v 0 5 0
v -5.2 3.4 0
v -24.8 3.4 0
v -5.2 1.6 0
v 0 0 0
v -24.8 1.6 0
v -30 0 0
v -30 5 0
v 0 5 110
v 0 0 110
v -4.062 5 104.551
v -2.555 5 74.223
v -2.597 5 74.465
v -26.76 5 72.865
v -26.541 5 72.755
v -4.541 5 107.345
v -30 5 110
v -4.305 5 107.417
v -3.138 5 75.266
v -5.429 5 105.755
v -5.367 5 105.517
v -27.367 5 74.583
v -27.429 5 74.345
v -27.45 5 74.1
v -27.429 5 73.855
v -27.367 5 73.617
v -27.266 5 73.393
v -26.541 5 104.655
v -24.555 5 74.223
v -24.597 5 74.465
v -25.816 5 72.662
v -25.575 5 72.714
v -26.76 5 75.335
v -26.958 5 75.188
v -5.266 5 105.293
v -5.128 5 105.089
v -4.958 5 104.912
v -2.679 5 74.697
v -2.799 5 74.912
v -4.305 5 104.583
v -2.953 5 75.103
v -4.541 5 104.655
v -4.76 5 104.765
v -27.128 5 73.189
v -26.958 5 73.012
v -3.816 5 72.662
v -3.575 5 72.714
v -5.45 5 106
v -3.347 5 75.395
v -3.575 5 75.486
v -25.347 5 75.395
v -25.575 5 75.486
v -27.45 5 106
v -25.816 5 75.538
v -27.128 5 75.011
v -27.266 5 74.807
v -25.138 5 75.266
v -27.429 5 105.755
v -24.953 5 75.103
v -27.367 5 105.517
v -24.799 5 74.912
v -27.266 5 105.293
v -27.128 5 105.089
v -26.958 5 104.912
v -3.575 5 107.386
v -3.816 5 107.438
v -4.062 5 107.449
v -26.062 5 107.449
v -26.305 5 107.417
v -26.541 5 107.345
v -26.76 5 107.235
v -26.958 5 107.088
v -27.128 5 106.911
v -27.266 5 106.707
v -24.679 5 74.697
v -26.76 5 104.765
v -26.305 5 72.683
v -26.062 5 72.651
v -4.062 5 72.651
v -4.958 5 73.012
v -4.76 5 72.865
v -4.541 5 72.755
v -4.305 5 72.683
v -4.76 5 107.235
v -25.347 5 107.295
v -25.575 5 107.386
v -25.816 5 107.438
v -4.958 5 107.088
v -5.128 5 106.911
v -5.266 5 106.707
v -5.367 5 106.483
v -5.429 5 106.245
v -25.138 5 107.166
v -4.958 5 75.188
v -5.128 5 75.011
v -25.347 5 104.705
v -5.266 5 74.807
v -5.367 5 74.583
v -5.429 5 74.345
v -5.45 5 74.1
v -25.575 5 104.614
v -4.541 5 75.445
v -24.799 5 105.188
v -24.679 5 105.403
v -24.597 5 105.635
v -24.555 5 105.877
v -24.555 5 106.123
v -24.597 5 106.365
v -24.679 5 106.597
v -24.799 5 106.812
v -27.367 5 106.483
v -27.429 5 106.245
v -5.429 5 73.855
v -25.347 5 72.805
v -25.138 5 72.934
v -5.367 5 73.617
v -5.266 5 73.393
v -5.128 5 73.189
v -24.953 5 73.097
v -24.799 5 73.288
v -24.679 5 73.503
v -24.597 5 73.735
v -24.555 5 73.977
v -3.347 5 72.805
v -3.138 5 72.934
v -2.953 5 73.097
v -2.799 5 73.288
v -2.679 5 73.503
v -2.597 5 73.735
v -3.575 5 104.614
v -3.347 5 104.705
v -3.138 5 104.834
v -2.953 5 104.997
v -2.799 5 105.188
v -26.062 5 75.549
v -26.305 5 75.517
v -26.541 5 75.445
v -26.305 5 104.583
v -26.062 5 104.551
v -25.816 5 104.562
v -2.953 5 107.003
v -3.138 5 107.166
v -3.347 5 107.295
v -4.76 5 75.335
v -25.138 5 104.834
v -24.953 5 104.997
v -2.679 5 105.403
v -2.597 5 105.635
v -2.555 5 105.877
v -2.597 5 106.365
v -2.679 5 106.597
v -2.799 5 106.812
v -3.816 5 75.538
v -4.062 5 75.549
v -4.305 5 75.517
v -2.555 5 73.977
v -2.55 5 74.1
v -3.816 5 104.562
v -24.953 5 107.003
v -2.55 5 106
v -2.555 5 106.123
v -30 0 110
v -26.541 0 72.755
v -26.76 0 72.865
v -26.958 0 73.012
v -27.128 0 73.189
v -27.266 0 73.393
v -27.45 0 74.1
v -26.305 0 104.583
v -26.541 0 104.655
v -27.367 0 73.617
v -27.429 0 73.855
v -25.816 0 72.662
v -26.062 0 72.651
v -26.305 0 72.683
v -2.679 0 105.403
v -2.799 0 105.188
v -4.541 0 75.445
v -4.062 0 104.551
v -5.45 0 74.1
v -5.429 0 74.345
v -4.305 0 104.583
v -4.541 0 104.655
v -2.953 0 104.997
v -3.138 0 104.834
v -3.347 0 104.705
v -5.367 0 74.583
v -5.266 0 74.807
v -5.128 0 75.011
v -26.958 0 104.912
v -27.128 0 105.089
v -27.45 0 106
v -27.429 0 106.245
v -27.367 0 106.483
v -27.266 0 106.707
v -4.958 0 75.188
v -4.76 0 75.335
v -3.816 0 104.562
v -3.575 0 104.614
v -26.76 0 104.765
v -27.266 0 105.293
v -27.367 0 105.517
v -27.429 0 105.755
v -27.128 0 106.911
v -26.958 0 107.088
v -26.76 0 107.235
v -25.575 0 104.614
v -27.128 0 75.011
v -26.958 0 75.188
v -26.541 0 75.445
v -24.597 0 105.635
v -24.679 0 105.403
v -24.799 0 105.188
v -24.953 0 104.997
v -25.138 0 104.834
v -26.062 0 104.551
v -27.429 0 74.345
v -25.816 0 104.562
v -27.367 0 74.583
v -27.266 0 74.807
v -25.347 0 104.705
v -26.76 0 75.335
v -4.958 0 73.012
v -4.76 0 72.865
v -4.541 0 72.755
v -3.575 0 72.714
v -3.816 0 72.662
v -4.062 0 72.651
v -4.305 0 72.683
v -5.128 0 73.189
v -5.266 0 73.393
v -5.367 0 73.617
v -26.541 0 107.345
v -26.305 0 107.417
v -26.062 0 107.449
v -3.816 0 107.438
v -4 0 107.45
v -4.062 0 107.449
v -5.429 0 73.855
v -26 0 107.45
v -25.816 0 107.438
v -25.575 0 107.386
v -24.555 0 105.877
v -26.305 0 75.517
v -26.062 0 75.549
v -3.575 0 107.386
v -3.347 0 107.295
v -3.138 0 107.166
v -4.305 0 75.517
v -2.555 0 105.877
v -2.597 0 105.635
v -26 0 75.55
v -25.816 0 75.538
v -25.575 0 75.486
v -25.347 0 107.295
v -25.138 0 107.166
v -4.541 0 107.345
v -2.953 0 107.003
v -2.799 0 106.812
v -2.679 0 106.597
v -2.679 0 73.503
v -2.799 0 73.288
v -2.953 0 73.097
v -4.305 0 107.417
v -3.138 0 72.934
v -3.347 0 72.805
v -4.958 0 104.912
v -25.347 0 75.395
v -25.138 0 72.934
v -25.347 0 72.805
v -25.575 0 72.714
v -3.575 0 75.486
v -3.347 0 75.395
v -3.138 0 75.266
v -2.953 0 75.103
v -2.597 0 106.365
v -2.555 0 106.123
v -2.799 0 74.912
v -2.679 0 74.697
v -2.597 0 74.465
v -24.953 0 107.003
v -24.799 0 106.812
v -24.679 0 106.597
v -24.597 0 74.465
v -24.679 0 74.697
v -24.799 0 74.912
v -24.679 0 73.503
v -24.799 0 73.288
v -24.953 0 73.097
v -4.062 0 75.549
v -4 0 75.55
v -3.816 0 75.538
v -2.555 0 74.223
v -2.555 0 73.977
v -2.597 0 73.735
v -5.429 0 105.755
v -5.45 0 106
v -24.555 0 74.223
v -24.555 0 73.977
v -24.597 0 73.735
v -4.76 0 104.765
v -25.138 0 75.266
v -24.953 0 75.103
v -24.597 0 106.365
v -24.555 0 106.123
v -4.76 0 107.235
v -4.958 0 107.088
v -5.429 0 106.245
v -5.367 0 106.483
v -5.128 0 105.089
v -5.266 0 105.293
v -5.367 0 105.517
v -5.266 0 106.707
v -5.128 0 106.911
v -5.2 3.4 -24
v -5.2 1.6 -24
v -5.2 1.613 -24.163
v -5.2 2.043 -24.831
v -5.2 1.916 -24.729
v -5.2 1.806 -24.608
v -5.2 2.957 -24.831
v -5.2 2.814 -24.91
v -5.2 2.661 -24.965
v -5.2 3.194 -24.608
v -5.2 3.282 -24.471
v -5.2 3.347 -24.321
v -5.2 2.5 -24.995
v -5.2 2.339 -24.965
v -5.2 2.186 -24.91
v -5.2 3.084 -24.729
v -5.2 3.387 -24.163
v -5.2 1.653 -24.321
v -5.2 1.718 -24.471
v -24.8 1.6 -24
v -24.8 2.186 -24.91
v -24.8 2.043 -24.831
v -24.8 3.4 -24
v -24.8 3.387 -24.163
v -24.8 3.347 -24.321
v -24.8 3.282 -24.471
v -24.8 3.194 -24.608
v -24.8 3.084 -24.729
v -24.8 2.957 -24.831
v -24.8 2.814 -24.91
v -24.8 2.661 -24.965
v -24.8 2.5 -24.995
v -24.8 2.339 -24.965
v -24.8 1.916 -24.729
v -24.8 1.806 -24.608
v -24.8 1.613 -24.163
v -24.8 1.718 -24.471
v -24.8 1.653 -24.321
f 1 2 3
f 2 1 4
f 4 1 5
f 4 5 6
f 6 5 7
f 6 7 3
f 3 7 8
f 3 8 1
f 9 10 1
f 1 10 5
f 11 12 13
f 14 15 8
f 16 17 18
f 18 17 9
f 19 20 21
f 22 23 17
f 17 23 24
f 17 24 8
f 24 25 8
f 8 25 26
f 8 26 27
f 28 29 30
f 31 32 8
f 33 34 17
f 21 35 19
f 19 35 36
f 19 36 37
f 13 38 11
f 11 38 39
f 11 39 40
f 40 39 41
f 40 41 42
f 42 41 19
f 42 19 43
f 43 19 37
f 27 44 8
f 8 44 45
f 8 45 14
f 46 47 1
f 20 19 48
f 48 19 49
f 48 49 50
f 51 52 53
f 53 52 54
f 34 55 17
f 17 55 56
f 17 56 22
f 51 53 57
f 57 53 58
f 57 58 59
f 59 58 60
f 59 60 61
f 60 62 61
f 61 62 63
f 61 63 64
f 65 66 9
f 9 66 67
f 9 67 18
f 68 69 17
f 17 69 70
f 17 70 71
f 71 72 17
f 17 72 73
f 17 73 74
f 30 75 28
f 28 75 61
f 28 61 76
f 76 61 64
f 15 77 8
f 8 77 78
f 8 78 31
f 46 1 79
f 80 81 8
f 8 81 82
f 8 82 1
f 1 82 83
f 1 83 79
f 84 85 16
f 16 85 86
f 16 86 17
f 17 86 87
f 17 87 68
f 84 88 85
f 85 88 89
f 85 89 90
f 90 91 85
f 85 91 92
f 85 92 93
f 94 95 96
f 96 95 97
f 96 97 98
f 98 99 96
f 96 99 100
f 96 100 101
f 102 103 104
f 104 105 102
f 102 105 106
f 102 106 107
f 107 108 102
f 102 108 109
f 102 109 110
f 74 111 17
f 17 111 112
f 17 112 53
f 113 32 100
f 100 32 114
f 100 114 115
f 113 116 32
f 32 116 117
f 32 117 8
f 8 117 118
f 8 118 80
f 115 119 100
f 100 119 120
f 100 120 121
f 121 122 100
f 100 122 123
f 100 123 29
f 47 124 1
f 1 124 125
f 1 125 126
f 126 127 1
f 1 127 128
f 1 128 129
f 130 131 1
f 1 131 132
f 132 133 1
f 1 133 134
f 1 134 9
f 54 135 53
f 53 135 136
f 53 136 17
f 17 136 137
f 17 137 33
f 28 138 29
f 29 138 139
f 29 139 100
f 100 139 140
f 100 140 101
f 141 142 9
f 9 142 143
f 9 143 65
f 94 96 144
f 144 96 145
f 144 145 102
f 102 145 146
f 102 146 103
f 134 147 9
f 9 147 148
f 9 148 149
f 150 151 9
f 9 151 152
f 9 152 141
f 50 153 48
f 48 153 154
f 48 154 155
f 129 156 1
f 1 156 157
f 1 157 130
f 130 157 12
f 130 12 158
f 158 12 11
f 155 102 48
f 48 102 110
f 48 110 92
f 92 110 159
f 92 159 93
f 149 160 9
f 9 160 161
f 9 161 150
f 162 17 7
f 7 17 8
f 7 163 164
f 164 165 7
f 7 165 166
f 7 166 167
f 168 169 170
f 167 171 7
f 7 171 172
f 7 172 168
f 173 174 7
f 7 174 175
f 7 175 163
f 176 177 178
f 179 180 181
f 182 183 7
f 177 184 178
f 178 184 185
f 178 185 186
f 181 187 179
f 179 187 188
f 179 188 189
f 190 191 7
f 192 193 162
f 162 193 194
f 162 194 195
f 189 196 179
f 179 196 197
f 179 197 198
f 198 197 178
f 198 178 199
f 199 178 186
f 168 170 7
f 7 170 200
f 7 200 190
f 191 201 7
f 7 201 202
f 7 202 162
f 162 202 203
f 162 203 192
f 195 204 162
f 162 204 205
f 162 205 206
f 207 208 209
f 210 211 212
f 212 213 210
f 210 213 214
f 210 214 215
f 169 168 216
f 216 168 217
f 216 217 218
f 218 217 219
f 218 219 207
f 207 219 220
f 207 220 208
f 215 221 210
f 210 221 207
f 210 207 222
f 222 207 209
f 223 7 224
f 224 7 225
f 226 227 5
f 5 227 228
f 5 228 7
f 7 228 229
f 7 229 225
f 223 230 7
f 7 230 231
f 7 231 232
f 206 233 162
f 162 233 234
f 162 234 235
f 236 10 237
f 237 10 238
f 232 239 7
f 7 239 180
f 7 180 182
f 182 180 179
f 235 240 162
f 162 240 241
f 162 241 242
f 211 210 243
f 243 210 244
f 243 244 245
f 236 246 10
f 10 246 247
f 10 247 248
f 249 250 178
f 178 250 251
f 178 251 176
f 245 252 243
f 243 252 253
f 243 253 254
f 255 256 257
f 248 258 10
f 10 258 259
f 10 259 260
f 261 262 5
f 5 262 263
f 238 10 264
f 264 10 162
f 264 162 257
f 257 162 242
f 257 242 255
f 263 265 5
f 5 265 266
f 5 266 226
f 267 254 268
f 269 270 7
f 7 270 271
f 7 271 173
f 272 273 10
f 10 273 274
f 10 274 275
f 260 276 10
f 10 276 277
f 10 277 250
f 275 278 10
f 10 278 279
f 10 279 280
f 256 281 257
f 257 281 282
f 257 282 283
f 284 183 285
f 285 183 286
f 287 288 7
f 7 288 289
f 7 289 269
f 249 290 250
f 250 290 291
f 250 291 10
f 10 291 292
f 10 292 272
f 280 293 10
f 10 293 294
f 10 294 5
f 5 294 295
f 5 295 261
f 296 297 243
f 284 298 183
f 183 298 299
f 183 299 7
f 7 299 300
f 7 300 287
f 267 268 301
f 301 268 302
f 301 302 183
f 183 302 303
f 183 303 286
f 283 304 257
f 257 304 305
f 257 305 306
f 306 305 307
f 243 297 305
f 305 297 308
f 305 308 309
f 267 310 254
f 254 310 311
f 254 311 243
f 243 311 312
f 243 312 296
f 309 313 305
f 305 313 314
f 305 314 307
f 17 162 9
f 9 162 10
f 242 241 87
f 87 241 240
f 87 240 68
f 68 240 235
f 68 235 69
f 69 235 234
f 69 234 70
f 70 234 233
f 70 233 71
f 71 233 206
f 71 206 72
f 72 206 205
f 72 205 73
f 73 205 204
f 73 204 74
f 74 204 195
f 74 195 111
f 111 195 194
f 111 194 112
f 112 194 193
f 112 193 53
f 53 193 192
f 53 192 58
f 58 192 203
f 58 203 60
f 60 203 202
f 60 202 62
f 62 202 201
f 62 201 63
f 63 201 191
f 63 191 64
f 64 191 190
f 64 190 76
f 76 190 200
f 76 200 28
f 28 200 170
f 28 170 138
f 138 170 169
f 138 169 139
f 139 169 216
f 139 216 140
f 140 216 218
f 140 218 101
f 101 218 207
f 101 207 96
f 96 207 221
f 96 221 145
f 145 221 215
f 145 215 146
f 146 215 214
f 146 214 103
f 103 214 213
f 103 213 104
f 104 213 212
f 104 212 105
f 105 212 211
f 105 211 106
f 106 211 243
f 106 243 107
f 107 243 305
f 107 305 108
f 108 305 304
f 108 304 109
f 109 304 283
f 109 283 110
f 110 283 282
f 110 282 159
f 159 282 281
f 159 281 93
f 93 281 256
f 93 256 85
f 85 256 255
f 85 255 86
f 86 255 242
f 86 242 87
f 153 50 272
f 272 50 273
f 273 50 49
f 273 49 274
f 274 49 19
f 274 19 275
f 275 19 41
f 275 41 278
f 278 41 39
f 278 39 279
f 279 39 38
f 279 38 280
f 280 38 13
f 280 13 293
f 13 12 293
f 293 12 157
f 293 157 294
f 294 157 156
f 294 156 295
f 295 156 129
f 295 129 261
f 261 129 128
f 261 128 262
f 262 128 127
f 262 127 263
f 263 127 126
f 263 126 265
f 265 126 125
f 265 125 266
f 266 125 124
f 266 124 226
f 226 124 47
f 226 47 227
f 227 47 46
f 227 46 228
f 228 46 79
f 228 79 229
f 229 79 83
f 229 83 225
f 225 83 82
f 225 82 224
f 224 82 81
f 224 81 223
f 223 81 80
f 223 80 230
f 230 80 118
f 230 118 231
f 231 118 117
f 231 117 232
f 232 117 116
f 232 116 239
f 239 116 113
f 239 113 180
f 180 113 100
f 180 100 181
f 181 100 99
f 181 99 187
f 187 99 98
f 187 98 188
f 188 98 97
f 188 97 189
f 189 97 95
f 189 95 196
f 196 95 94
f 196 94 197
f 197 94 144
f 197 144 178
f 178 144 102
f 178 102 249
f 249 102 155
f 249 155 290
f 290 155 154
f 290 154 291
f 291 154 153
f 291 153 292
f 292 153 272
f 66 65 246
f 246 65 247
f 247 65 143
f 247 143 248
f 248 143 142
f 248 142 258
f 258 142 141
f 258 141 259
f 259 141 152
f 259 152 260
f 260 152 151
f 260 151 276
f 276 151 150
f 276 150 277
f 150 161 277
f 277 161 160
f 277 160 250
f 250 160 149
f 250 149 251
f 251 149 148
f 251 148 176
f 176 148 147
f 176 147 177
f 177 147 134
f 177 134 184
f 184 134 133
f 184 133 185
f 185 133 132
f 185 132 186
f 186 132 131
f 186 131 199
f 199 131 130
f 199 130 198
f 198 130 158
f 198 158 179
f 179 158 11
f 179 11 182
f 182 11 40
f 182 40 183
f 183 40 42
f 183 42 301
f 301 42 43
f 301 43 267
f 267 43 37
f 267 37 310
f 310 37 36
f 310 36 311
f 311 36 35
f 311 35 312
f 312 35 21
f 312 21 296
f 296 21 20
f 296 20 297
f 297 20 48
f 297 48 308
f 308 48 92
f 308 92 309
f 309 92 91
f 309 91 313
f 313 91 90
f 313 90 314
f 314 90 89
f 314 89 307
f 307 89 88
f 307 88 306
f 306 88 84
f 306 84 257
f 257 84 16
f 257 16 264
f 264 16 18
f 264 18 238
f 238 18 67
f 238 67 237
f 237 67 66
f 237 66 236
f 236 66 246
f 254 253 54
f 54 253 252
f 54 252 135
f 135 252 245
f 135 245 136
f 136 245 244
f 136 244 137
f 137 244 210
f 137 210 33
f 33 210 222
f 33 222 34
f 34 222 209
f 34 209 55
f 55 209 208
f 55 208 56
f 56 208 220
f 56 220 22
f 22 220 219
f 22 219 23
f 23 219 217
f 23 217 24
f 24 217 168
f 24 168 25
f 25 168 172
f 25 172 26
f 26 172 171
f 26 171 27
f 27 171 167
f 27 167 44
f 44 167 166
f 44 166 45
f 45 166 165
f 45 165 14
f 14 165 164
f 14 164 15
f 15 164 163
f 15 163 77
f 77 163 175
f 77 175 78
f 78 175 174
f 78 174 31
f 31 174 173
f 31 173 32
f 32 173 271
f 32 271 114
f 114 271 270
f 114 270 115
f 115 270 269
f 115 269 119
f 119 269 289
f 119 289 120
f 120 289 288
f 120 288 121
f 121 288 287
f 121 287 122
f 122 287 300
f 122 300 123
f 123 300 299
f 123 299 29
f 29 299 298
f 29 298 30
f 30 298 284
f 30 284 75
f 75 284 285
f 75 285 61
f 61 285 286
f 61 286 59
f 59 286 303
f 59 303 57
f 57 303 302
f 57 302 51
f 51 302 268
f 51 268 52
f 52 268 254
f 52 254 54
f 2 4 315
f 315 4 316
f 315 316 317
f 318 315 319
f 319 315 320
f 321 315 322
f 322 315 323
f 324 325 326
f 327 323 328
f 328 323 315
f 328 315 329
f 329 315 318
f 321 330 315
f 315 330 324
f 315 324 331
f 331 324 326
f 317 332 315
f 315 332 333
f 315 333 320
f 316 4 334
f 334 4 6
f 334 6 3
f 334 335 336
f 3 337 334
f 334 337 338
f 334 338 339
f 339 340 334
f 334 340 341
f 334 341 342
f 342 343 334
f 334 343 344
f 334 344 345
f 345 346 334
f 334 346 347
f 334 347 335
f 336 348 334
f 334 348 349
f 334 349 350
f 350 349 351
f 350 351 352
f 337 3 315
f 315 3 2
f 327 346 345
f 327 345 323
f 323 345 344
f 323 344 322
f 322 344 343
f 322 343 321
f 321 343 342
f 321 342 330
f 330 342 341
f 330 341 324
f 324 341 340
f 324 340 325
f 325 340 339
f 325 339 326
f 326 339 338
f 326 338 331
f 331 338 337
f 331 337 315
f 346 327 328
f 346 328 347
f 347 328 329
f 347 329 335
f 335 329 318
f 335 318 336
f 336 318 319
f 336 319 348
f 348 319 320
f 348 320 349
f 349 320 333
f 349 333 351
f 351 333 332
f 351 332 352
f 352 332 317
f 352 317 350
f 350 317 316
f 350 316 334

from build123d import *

# Parameters (mm, degrees)
SKETCH_1_W          = 30
SKETCH_1_H          = 5
EXTRUDE_1_DEPTH     = 110
SKETCH_2_R          = 1.45
CUT_EXTRUDE_1_DEPTH = 60
SKETCH_4_W          = 19.6
SKETCH_4_H          = 1.8
EXTRUDE_2_DEPTH     = 25
FILLET_1_R          = 1


with BuildPart() as part:
    # 草图1 → 凸台-拉伸1 (new body)
    with BuildSketch(Plane.XY):
        with Locations((-15, 2.5)):
            Rectangle(SKETCH_1_W, SKETCH_1_H)
    extrude(amount=EXTRUDE_1_DEPTH)

    # 草图2 → 切除-拉伸1 (cut)
    with BuildSketch(Plane(origin=(0, 5, 0), x_dir=(1, 0, 0), z_dir=(0, 1, 0))):
        with Locations(Location((-26, -106, 0), (0, 0, 180))):
            Circle(SKETCH_2_R)
        with Locations(Location((-26, -74.1, 0), (0, 0, 180))):
            Circle(SKETCH_2_R)
        with Locations(Location((-4, -106, 0), (0, 0, 270))):
            Circle(SKETCH_2_R)
        with Locations(Location((-4, -74.1, 0), (0, 0, 270))):
            Circle(SKETCH_2_R)
    extrude(amount=-CUT_EXTRUDE_1_DEPTH, mode=Mode.SUBTRACT)

    # 草图4 → 凸台-拉伸2 (add)
    with BuildSketch(Plane(origin=(0, 0, 0), x_dir=(-1, 0, 0), z_dir=(0, 0, -1))):
        with Locations((15, 2.5)):
            Rectangle(SKETCH_4_W, SKETCH_4_H)
    extrude(amount=EXTRUDE_2_DEPTH)

    # 圆角1
    # the kernel refuses this fillet: 1 mm, written as the material it takes off along each edge
    with BuildSketch(Plane(origin=(-27.3, 1.6, -25), x_dir=(0, 0, 1), z_dir=(1, 0, 0)), Plane(origin=(-2.7, 3.4, -25), x_dir=(0, 0, 1), z_dir=(-1, 0, 0))) as fillet_1_piece_1:
        with BuildLine():
            CenterArc((FILLET_1_R, -FILLET_1_R), FILLET_1_R, 90, 90)
            Line((0, -FILLET_1_R), (0, 0))
            Line((0, 0), (FILLET_1_R, 0))
        make_face()
    extrude(amount=24.6, mode=Mode.SUBTRACT)


solid = part.part
